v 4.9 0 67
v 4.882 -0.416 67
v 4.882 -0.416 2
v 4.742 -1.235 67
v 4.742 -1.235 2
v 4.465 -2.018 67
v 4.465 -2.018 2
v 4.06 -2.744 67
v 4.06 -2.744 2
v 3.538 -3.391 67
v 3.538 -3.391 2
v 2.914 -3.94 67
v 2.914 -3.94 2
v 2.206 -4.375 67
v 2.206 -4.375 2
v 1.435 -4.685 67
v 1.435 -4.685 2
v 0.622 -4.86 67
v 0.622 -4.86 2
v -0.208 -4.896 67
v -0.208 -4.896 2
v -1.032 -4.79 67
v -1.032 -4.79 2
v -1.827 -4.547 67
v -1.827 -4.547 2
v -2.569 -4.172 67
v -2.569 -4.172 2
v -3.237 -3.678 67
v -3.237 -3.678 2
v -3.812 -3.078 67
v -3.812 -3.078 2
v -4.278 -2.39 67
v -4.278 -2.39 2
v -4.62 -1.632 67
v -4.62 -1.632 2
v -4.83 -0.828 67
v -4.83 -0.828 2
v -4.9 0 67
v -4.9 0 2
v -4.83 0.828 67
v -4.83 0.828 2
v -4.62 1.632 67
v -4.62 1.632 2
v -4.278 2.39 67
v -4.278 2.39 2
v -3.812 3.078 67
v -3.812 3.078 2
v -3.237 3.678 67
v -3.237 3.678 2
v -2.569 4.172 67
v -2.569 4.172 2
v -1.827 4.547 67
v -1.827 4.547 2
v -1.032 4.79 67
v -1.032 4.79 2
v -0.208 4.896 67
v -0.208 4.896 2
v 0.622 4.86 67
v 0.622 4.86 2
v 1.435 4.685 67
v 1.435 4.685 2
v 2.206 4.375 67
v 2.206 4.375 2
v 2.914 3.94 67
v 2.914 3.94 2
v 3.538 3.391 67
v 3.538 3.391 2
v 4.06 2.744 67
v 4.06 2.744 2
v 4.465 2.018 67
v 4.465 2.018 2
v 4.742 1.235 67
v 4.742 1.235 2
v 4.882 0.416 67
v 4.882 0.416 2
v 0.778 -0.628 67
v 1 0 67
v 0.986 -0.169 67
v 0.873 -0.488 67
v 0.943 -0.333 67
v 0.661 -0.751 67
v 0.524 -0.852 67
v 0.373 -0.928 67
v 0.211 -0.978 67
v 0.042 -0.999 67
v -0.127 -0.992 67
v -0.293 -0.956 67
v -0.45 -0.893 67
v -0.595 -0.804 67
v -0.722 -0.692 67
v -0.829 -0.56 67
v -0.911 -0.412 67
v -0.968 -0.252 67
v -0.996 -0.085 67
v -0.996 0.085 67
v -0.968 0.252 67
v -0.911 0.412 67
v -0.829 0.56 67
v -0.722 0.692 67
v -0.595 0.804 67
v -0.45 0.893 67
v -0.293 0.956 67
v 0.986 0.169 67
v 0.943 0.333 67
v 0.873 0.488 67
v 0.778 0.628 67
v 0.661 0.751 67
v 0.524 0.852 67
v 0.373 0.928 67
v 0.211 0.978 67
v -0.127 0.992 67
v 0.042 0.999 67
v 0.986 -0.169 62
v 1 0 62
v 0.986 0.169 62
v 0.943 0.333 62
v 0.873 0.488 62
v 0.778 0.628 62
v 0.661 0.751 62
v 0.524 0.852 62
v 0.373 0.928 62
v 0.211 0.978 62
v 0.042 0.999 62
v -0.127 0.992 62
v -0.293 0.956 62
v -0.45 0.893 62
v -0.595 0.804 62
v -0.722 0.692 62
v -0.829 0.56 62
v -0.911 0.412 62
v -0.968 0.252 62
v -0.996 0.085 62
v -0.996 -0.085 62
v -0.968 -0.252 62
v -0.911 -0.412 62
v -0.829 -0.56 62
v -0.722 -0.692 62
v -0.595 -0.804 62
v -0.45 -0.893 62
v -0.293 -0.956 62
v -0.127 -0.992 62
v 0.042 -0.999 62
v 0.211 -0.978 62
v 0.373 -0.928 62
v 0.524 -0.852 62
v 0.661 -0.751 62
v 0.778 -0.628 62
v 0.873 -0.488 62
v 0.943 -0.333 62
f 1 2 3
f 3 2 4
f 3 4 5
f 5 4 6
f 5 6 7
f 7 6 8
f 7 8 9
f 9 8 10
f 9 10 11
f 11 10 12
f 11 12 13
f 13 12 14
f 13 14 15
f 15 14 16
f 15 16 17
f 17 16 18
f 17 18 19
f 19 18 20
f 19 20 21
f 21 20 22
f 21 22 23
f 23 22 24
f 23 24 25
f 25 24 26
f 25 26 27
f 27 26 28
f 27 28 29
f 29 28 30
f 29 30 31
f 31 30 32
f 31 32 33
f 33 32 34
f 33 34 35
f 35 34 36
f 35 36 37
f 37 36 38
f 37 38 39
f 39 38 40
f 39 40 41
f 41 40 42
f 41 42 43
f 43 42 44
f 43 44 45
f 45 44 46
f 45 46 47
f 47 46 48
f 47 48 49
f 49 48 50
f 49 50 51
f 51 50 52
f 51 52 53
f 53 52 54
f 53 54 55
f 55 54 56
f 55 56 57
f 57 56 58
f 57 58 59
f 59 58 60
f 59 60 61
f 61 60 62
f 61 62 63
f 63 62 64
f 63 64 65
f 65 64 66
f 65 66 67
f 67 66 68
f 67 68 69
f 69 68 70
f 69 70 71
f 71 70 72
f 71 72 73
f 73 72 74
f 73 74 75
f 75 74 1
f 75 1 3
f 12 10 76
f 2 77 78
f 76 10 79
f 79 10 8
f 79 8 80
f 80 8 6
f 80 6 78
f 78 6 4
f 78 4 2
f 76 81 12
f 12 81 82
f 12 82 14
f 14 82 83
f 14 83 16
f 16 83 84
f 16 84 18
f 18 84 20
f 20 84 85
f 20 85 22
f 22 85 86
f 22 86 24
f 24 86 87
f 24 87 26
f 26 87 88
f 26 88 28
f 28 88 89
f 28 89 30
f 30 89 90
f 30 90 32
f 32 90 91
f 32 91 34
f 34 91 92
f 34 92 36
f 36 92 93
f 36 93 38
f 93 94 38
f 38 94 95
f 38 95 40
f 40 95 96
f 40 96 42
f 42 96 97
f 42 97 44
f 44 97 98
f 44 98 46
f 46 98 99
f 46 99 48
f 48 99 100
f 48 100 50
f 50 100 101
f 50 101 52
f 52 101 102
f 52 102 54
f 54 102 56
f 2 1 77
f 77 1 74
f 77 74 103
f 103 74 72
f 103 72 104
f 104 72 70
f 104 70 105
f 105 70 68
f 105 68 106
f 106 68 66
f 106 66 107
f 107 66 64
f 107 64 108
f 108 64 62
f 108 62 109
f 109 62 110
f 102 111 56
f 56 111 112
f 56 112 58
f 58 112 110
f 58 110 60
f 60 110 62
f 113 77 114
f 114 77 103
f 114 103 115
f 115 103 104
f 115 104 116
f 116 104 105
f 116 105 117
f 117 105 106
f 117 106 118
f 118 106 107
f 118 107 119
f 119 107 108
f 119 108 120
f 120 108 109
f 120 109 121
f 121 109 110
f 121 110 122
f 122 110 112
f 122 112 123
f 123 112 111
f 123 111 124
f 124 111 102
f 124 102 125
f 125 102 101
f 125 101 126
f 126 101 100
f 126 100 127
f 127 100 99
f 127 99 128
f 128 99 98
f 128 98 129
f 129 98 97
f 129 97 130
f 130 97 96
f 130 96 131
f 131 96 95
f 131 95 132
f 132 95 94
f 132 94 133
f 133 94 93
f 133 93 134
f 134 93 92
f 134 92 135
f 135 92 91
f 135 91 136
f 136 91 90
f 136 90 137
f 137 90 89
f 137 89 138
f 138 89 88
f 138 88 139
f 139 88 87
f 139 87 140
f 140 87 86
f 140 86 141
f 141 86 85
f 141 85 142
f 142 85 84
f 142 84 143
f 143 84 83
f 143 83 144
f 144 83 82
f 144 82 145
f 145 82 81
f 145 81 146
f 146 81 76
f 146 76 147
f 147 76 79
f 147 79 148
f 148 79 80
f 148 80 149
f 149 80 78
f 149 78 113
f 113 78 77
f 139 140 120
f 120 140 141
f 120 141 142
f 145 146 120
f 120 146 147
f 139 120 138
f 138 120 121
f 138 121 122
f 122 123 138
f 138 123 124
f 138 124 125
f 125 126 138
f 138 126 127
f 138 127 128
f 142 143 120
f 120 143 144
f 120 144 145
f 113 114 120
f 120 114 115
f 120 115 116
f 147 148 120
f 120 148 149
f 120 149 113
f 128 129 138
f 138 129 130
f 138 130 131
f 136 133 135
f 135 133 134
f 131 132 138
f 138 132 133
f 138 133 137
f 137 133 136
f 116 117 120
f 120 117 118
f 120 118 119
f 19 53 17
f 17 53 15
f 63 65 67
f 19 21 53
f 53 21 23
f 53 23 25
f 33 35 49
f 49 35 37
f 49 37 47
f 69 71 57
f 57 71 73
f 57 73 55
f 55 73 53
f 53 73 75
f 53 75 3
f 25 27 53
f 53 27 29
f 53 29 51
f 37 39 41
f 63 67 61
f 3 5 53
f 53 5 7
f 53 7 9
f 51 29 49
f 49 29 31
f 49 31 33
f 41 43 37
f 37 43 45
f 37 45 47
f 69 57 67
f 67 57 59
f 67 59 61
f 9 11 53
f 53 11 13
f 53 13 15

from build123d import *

# Parameters (mm, degrees)
P_IDAT_VYSUNUT_M1_DEPTH       = 2
VYSUNOUT_TENKOST_NN_2_DEPTH   = 2
SKICA4_R                      = 4.9
P_IDAT_VYSUNUT_M2_DEPTH       = 65
SKICA5_R                      = 1
ODEBRAT_VYSUNUT_M1_DEPTH      = 5
P_IDAT_VYSUNUT_M3_DEPTH       = 2
P_IDAT_VYSUNUT_M4_DEPTH       = 2
ODEBRAT_VYSUNUT_M2_DEPTH      = 94.281831028
ODEBRAT_VYSUNUT_M2_DEPTH_BACK = 94.281831028
SKICA8_OUTSIDE_W              = 95.448
SKICA8_OUTSIDE_H              = 89.948
SKICA8_OUTSIDE_W_2            = 9.9
SKICA8_OUTSIDE_H_2            = 65


# Read off the part's stored shape, not the designer's step: Rozdělit1
with BuildPart() as part:
    # Skica1 → Přidat vysunutím1 (new body)
    with BuildSketch(Plane.XY):
        with BuildLine():
            Line((0, 5), (-60, 5))
            Line((-60, 5), (-60, -5))
            Line((-60, -5), (0, -5))
            ThreePointArc((0, -5), (5, 0), (0, 5))
        make_face()
    extrude(amount=P_IDAT_VYSUNUT_M1_DEPTH)

    # Skica3 → Vysunout tenkostěnný2 (add)
    with BuildSketch(Plane.XY):
        with BuildLine():
            Line((-50, -16.5), (-60, -16.5))
            ThreePointArc((-60, -16.5), (-61.5, -15), (-60, -13.5))
            Line((-60, -13.5), (-50, -13.5))
            ThreePointArc((-50, -13.5), (-47.5, -11), (-50, -8.5))
            Line((-50, -8.5), (-60, -8.5))
            ThreePointArc((-60, -8.5), (-61.5, -7), (-60, -5.5))
            Line((-60, -5.5), (-50, -5.5))
            Line((-50, -5.5), (-50, -4.5))
            Line((-50, -4.5), (-60, -4.5))
            ThreePointArc((-60, -4.5), (-62.5, -7), (-60, -9.5))
            Line((-60, -9.5), (-50, -9.5))
            ThreePointArc((-50, -9.5), (-48.5, -11), (-50, -12.5))
            Line((-50, -12.5), (-60, -12.5))
            ThreePointArc((-60, -12.5), (-62.5, -15), (-60, -17.5))
            Line((-60, -17.5), (-50, -17.5))
            Line((-50, -17.5), (-50, -16.5))
        make_face()
    extrude(amount=VYSUNOUT_TENKOST_NN_2_DEPTH)


with BuildPart() as body_2:
    # Rozdělit1: the piece on the far side of the plane
    add(part.part)
    split(bisect_by=Plane(origin=(0, 0, 0), x_dir=(1, 0, 0), z_dir=(0, 1, 0)), keep=Keep.BOTTOM)

    # Zrcadlit3: body 2 across plane


with BuildPart() as part_1:
    add(part.part)

    # Rozdělit1
    split(bisect_by=Plane(origin=(0, 0, 0), x_dir=(1, 0, 0), z_dir=(0, 1, 0)), keep=Keep.TOP)


with BuildPart() as body_2_1:
    add(body_2.part)
    add(body_2.part.mirror(Plane.ZX))

    # Skica4 → Přidat vysunutím2 (add)
    with BuildSketch(Plane.XY.offset(2)):
        Circle(SKICA4_R)
    extrude(amount=P_IDAT_VYSUNUT_M2_DEPTH)

    # Skica5 → Odebrat vysunutím1 (cut)
    with BuildSketch(Plane.XY.offset(67)):
        Circle(SKICA5_R)
    extrude(amount=-ODEBRAT_VYSUNUT_M1_DEPTH, mode=Mode.SUBTRACT)

    # Skica6 → Přidat vysunutím3 (add)
    with BuildSketch(Plane(origin=(0, 0, 0), x_dir=(-1, 0, 0), z_dir=(0, 0, -1))):
        with BuildLine():
            Line((0, 5), (-5, 5))
            ThreePointArc((-5, 5), (-10, 0), (-5, -5))
            Line((-5, -5), (0, -5))
            ThreePointArc((0, -5), (-5, 0), (0, 5))
        make_face()
    extrude(amount=-P_IDAT_VYSUNUT_M3_DEPTH)

    # Skica7 → Přidat vysunutím4 (add)
    with BuildSketch(Plane.XY.offset(2)):
        with BuildLine():
            Line((-50, 5), (-50, -5))
            Line((-50, -5), (-50, -5.5))
            Line((-50, -5.5), (-60, -5.5))
            ThreePointArc((-60, -5.5), (-61.5, -7), (-60, -8.5))
            Line((-60, -8.5), (-50, -8.5))
            ThreePointArc((-50, -8.5), (-47.5, -11), (-50, -13.5))
            Line((-50, -13.5), (-60, -13.5))
            ThreePointArc((-60, -13.5), (-61.5, -15), (-60, -16.5))
            Line((-60, -16.5), (-50, -16.5))
            Line((-50, -16.5), (-50, -17.5))
            Line((-50, -17.5), (-60, -17.5))
            ThreePointArc((-60, -17.5), (-62.5, -15), (-60, -12.5))
            Line((-60, -12.5), (-50, -12.5))
            ThreePointArc((-50, -12.5), (-48.5, -11), (-50, -9.5))
            Line((-50, -9.5), (-60, -9.5))
            ThreePointArc((-60, -9.5), (-62.5, -7), (-60, -4.5))
            Line((-60, -4.5), (-60, 4.5))
            ThreePointArc((-60, 4.5), (-62.5, 7), (-60, 9.5))
            Line((-60, 9.5), (-50, 9.5))
            ThreePointArc((-50, 9.5), (-48.5, 11), (-50, 12.5))
            Line((-50, 12.5), (-60, 12.5))
            ThreePointArc((-60, 12.5), (-62.5, 15), (-60, 17.5))
            Line((-60, 17.5), (-50, 17.5))
            Line((-50, 17.5), (-50, 16.5))
            Line((-50, 16.5), (-60, 16.5))
            ThreePointArc((-60, 16.5), (-61.5, 15), (-60, 13.5))
            Line((-60, 13.5), (-50, 13.5))
            ThreePointArc((-50, 13.5), (-47.5, 11), (-50, 8.5))
            Line((-50, 8.5), (-60, 8.5))
            ThreePointArc((-60, 8.5), (-61.5, 7), (-60, 5.5))
            Line((-60, 5.5), (-50, 5.5))
            Line((-50, 5.5), (-50, 5))
        make_face()
    extrude(amount=P_IDAT_VYSUNUT_M4_DEPTH)

    # Skica8 outside → Odebrat vysunutím2 (cut, two sides: drawn at the far end of the back side and taken through both)
    with BuildSketch(Plane(origin=(0, 0, 0), x_dir=(1, 0, 0), z_dir=(0, 1, 0)).offset(-ODEBRAT_VYSUNUT_M2_DEPTH_BACK)):
        with Locations((-26.25, -33.5)):
            Rectangle(SKICA8_OUTSIDE_W, SKICA8_OUTSIDE_H)
        with Locations((0.05, -34.5)):
            Rectangle(SKICA8_OUTSIDE_W_2, SKICA8_OUTSIDE_H_2, mode=Mode.SUBTRACT)
    extrude(amount=ODEBRAT_VYSUNUT_M2_DEPTH + ODEBRAT_VYSUNUT_M2_DEPTH_BACK, mode=Mode.SUBTRACT)


solid = body_2_1.part
